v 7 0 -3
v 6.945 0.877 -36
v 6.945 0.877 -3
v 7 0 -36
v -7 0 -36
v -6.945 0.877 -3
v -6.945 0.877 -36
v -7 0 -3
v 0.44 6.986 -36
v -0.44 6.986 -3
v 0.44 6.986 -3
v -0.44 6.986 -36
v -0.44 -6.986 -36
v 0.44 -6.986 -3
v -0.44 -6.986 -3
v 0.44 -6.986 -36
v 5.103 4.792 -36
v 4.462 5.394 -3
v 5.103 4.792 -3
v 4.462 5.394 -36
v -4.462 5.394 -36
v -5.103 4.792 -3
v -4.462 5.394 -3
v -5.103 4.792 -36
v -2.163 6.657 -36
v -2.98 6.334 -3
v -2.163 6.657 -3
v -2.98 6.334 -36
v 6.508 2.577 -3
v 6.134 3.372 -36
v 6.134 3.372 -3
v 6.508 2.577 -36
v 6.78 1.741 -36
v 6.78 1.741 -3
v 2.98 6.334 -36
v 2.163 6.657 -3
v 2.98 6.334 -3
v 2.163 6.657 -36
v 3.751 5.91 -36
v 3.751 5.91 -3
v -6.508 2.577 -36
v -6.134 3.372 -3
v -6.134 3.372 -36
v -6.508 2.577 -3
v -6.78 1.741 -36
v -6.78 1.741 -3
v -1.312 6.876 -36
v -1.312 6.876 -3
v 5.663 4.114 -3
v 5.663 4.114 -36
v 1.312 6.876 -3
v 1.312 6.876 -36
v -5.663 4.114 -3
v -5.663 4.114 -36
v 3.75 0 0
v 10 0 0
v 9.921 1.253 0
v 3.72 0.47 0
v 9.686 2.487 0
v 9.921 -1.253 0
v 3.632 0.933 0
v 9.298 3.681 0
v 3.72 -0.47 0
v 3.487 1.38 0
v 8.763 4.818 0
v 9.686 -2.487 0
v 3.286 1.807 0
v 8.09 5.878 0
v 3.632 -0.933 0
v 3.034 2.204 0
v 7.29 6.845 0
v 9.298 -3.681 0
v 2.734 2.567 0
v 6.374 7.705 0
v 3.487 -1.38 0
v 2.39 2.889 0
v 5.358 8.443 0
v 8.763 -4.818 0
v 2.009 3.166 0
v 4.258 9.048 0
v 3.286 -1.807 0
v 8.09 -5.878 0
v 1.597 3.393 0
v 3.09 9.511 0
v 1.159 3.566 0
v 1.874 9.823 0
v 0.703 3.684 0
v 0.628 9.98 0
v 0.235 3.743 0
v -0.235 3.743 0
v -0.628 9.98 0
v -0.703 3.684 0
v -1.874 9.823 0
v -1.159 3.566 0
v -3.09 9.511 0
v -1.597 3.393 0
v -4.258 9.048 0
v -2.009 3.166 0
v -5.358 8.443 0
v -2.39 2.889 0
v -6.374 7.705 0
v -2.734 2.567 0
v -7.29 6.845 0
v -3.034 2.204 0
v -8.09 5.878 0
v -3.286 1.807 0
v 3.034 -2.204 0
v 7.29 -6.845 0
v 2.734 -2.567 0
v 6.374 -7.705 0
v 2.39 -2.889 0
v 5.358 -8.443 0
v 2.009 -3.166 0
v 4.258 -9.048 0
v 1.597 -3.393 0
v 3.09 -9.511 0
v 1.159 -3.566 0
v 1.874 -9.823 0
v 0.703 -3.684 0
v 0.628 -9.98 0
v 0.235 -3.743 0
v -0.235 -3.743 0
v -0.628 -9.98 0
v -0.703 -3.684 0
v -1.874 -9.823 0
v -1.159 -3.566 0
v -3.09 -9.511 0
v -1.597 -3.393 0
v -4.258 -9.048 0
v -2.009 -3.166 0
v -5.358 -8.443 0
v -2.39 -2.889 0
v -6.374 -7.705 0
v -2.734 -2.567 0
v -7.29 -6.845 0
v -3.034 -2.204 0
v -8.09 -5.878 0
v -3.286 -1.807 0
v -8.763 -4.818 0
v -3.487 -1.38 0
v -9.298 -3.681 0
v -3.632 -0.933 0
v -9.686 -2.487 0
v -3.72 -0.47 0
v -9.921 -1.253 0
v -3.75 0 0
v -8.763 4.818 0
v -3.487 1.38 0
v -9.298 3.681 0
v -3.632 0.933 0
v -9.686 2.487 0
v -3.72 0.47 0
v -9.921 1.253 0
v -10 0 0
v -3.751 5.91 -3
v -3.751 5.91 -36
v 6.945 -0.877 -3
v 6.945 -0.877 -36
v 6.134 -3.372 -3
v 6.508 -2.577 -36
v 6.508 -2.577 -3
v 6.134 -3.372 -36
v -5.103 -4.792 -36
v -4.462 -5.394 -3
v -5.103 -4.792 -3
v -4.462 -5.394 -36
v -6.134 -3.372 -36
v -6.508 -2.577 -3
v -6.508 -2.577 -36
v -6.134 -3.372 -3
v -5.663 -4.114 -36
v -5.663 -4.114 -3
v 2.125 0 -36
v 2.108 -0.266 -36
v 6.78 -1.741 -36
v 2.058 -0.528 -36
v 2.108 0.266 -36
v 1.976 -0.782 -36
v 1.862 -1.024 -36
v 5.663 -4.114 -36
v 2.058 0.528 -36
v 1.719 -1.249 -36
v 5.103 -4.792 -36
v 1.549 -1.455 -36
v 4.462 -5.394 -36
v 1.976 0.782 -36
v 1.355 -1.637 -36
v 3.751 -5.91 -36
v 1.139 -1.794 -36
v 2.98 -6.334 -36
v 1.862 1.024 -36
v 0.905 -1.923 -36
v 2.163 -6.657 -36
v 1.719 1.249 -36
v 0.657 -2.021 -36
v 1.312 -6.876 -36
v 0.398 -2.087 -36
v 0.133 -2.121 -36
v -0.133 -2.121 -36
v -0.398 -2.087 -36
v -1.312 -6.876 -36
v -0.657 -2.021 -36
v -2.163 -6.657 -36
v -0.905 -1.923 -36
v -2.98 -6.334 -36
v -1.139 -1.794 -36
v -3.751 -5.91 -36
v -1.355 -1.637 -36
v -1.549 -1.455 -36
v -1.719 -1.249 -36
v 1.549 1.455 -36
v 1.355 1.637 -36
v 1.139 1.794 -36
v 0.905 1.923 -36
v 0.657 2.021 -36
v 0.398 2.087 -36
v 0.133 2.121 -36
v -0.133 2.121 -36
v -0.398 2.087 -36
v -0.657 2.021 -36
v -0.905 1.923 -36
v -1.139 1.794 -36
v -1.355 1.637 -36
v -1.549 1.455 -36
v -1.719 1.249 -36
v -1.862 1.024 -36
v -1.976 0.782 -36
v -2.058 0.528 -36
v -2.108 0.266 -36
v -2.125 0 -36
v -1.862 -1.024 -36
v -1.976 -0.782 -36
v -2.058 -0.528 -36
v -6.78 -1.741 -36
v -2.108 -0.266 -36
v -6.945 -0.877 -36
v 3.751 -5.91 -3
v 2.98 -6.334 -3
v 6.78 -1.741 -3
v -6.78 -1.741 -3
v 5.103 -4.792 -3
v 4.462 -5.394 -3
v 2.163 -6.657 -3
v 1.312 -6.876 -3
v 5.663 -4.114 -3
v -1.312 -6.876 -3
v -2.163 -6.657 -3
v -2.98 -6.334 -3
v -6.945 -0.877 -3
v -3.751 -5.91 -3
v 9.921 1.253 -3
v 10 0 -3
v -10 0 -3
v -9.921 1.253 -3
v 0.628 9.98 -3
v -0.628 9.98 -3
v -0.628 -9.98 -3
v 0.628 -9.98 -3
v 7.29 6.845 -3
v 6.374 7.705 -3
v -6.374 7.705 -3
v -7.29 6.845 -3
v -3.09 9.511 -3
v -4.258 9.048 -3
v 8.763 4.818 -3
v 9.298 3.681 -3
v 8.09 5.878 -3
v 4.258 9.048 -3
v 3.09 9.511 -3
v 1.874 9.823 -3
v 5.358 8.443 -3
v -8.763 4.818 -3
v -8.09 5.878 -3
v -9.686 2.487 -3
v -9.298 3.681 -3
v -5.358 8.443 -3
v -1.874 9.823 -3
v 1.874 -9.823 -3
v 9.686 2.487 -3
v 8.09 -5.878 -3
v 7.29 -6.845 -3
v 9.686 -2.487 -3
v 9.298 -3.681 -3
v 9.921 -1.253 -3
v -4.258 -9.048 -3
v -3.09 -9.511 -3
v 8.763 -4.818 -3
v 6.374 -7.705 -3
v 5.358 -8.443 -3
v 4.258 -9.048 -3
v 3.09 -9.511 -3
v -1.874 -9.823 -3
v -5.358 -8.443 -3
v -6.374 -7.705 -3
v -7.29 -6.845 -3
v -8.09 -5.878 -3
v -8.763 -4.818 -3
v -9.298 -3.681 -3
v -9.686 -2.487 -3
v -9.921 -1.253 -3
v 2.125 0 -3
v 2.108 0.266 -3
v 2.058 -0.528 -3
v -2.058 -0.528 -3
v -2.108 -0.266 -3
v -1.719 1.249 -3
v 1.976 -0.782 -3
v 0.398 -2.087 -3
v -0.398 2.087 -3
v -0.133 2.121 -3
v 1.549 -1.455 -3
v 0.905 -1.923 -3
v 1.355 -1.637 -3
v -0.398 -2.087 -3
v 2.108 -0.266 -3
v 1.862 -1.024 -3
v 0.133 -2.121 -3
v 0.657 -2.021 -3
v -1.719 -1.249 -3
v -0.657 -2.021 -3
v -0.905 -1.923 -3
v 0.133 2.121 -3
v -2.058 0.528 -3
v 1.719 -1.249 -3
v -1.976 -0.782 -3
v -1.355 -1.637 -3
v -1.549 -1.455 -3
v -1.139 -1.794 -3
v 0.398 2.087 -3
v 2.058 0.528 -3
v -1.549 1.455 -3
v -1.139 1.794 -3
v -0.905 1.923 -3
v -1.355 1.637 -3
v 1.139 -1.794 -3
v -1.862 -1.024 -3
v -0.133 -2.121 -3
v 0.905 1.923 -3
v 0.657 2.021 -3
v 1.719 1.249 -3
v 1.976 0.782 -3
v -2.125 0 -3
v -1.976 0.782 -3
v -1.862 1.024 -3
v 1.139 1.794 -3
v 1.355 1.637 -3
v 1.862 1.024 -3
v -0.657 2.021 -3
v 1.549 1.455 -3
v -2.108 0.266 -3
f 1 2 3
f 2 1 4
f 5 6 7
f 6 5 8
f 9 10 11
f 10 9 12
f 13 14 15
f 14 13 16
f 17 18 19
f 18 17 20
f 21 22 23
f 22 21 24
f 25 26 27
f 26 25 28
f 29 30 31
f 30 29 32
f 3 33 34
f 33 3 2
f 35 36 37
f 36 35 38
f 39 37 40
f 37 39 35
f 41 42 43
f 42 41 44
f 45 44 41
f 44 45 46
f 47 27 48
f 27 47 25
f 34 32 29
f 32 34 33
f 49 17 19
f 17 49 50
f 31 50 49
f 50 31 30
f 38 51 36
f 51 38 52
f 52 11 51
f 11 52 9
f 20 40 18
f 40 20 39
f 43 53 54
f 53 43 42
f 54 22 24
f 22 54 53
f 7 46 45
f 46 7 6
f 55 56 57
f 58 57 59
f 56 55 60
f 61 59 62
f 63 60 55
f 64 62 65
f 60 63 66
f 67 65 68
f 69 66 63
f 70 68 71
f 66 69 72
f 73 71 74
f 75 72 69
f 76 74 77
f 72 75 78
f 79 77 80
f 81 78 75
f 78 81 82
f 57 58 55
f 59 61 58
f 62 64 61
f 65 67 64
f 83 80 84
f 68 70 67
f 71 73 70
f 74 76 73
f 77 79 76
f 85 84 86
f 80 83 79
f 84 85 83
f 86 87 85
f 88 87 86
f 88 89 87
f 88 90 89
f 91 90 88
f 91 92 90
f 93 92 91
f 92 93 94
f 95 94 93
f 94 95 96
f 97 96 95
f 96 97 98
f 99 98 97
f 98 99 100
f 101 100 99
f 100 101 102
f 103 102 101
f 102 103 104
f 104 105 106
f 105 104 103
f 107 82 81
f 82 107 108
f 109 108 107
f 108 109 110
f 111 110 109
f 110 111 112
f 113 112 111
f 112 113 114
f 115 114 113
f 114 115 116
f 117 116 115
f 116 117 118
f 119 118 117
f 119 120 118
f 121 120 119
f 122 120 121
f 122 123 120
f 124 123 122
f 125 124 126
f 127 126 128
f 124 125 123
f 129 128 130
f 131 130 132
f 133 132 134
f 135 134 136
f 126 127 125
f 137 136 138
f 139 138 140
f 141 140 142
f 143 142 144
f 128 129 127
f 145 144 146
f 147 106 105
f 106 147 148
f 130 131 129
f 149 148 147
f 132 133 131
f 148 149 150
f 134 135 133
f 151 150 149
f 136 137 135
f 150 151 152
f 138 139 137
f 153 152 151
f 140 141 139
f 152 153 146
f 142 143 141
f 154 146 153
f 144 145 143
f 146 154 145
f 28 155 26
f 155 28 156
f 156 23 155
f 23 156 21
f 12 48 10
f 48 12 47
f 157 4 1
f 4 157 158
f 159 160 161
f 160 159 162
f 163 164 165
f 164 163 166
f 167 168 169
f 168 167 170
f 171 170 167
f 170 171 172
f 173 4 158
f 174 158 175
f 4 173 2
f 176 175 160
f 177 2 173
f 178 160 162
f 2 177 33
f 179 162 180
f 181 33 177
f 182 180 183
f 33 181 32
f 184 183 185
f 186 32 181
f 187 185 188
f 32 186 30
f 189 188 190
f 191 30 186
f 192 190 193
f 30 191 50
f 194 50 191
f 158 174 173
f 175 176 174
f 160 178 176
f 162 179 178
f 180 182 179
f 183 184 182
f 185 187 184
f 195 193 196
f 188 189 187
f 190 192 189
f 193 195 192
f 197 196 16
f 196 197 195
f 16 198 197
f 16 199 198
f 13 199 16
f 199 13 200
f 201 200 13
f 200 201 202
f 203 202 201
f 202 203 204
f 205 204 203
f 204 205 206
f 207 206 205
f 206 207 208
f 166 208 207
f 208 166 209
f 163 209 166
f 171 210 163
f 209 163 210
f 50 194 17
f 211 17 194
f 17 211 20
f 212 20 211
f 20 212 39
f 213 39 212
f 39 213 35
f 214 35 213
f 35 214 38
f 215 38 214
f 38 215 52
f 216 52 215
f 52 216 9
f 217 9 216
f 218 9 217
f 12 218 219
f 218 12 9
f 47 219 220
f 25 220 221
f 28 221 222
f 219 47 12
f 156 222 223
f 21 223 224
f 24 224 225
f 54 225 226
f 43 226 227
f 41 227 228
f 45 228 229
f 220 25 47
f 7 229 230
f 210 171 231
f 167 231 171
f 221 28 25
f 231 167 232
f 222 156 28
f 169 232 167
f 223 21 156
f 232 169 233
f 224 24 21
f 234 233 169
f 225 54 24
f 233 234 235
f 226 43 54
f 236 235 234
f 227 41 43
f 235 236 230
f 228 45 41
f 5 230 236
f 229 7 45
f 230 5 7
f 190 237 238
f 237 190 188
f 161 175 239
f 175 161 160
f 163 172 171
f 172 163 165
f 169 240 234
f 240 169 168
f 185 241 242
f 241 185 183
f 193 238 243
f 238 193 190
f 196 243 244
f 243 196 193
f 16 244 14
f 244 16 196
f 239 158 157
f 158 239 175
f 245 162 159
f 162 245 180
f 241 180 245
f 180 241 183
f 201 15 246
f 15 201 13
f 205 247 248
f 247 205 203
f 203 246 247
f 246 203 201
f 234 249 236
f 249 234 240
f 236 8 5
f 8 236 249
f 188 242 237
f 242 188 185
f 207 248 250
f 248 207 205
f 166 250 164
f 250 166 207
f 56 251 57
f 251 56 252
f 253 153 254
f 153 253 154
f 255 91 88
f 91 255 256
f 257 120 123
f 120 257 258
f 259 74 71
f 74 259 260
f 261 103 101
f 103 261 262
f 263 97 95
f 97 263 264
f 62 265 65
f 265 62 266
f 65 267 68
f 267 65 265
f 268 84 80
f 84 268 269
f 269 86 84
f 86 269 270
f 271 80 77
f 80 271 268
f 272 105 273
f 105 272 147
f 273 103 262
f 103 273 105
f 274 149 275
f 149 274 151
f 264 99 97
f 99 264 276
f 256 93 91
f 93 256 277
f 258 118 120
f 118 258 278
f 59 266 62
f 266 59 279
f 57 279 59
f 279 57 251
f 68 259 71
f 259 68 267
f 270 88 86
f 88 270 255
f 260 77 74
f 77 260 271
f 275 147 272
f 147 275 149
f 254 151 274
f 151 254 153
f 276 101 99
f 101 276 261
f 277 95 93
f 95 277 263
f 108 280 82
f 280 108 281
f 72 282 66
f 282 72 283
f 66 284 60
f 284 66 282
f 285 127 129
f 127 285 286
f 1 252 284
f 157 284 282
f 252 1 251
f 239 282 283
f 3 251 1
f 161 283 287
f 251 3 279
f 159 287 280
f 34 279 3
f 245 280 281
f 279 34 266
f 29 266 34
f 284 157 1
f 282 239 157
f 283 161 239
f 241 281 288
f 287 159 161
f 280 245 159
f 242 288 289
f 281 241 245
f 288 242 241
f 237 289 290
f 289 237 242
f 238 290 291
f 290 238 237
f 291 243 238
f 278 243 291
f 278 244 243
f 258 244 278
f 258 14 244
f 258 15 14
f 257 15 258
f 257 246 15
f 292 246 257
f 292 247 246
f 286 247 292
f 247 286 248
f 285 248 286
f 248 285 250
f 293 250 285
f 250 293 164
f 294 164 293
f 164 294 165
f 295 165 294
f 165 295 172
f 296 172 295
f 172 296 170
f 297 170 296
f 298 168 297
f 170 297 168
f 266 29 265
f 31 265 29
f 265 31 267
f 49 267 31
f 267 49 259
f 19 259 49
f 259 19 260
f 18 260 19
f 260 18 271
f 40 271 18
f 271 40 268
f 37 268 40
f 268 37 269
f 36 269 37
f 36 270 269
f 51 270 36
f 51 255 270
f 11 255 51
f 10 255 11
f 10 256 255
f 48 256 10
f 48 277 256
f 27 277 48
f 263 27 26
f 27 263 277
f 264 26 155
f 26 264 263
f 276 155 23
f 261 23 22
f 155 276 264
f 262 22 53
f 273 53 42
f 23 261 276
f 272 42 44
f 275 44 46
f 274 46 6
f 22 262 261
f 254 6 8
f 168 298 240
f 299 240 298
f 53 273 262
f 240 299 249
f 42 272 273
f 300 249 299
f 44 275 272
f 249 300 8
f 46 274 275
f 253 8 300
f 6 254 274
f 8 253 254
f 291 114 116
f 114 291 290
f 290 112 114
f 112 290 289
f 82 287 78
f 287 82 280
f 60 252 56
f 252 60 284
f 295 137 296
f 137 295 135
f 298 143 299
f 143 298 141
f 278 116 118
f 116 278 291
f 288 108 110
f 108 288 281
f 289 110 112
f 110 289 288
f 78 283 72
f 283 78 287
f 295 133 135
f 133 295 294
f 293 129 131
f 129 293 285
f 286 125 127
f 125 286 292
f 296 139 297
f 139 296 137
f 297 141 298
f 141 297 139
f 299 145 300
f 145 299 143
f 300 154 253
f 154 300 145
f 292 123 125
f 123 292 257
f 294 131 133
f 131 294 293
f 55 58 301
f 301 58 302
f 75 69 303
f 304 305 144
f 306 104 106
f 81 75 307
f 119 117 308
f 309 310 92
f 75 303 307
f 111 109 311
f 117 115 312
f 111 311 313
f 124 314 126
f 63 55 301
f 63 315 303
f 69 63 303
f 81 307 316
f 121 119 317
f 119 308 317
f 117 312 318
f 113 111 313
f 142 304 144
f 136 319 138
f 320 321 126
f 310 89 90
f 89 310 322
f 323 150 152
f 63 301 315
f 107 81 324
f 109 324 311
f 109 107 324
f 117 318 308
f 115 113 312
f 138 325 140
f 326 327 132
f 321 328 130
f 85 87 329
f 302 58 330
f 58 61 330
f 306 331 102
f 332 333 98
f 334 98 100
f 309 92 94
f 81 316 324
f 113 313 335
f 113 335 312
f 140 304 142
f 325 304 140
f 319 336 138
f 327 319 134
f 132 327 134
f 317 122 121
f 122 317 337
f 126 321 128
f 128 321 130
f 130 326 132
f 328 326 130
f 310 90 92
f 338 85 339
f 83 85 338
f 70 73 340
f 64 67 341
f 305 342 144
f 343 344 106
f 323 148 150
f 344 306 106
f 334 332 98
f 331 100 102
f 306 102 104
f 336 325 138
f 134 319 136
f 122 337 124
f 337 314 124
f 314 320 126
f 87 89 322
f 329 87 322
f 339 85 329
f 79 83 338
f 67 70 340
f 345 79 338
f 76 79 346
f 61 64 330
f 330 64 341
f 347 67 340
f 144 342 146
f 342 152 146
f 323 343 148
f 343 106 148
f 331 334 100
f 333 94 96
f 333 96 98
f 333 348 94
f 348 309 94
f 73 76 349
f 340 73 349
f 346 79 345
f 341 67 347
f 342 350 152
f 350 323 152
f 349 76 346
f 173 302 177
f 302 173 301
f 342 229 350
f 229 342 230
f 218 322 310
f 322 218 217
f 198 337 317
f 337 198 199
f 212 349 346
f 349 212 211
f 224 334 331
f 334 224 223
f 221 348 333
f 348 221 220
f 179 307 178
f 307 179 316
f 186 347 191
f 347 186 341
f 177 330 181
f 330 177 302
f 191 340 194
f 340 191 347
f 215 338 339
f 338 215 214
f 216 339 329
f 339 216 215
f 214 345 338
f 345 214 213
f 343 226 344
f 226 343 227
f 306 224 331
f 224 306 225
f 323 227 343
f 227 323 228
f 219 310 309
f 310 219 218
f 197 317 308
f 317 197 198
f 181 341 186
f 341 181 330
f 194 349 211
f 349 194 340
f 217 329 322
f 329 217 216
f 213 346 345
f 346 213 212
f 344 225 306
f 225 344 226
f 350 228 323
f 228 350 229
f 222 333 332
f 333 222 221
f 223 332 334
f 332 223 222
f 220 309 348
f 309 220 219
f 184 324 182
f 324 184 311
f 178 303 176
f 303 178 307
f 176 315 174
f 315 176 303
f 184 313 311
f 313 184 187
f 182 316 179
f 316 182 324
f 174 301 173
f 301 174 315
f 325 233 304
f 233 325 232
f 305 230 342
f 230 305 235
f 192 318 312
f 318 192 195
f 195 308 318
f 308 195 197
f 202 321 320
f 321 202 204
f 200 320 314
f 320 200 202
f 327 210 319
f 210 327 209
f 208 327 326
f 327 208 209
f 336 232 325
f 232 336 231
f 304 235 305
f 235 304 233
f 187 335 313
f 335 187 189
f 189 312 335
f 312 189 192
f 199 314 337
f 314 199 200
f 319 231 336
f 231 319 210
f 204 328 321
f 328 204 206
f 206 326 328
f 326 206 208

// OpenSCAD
$fn = 50;


difference() {
	union() {
		translate(v = [0, 0, -36.0000000000]) {
			cylinder(h = 36, r = 7.0000000000);
		}
		translate(v = [0, 0, -3.0000000000]) {
			cylinder(h = 3, r = 10.0000000000);
		}
	}
	union() {
		translate(v = [0, 0, 0]) {
			rotate(a = [0, 0, 0]) {
				difference() {
					union() {
						#translate(v = [0, 0, -36.0000000000]) {
							cylinder(h = 36, r = 2.0000000000);
						}
						#translate(v = [0, 0, -3]) {
							cylinder(h = 3, r1 = 2.1250000000, r2 = 3.7500000000);
						}
						#translate(v = [0, 0, -36.0000000000]) {
							cylinder(h = 36, r = 2.1250000000);
						}
						#translate(v = [0, 0, -36.0000000000]) {
							cylinder(h = 36, r = 2.0000000000);
						}
					}
					union();
				}
			}
		}
	}
}
